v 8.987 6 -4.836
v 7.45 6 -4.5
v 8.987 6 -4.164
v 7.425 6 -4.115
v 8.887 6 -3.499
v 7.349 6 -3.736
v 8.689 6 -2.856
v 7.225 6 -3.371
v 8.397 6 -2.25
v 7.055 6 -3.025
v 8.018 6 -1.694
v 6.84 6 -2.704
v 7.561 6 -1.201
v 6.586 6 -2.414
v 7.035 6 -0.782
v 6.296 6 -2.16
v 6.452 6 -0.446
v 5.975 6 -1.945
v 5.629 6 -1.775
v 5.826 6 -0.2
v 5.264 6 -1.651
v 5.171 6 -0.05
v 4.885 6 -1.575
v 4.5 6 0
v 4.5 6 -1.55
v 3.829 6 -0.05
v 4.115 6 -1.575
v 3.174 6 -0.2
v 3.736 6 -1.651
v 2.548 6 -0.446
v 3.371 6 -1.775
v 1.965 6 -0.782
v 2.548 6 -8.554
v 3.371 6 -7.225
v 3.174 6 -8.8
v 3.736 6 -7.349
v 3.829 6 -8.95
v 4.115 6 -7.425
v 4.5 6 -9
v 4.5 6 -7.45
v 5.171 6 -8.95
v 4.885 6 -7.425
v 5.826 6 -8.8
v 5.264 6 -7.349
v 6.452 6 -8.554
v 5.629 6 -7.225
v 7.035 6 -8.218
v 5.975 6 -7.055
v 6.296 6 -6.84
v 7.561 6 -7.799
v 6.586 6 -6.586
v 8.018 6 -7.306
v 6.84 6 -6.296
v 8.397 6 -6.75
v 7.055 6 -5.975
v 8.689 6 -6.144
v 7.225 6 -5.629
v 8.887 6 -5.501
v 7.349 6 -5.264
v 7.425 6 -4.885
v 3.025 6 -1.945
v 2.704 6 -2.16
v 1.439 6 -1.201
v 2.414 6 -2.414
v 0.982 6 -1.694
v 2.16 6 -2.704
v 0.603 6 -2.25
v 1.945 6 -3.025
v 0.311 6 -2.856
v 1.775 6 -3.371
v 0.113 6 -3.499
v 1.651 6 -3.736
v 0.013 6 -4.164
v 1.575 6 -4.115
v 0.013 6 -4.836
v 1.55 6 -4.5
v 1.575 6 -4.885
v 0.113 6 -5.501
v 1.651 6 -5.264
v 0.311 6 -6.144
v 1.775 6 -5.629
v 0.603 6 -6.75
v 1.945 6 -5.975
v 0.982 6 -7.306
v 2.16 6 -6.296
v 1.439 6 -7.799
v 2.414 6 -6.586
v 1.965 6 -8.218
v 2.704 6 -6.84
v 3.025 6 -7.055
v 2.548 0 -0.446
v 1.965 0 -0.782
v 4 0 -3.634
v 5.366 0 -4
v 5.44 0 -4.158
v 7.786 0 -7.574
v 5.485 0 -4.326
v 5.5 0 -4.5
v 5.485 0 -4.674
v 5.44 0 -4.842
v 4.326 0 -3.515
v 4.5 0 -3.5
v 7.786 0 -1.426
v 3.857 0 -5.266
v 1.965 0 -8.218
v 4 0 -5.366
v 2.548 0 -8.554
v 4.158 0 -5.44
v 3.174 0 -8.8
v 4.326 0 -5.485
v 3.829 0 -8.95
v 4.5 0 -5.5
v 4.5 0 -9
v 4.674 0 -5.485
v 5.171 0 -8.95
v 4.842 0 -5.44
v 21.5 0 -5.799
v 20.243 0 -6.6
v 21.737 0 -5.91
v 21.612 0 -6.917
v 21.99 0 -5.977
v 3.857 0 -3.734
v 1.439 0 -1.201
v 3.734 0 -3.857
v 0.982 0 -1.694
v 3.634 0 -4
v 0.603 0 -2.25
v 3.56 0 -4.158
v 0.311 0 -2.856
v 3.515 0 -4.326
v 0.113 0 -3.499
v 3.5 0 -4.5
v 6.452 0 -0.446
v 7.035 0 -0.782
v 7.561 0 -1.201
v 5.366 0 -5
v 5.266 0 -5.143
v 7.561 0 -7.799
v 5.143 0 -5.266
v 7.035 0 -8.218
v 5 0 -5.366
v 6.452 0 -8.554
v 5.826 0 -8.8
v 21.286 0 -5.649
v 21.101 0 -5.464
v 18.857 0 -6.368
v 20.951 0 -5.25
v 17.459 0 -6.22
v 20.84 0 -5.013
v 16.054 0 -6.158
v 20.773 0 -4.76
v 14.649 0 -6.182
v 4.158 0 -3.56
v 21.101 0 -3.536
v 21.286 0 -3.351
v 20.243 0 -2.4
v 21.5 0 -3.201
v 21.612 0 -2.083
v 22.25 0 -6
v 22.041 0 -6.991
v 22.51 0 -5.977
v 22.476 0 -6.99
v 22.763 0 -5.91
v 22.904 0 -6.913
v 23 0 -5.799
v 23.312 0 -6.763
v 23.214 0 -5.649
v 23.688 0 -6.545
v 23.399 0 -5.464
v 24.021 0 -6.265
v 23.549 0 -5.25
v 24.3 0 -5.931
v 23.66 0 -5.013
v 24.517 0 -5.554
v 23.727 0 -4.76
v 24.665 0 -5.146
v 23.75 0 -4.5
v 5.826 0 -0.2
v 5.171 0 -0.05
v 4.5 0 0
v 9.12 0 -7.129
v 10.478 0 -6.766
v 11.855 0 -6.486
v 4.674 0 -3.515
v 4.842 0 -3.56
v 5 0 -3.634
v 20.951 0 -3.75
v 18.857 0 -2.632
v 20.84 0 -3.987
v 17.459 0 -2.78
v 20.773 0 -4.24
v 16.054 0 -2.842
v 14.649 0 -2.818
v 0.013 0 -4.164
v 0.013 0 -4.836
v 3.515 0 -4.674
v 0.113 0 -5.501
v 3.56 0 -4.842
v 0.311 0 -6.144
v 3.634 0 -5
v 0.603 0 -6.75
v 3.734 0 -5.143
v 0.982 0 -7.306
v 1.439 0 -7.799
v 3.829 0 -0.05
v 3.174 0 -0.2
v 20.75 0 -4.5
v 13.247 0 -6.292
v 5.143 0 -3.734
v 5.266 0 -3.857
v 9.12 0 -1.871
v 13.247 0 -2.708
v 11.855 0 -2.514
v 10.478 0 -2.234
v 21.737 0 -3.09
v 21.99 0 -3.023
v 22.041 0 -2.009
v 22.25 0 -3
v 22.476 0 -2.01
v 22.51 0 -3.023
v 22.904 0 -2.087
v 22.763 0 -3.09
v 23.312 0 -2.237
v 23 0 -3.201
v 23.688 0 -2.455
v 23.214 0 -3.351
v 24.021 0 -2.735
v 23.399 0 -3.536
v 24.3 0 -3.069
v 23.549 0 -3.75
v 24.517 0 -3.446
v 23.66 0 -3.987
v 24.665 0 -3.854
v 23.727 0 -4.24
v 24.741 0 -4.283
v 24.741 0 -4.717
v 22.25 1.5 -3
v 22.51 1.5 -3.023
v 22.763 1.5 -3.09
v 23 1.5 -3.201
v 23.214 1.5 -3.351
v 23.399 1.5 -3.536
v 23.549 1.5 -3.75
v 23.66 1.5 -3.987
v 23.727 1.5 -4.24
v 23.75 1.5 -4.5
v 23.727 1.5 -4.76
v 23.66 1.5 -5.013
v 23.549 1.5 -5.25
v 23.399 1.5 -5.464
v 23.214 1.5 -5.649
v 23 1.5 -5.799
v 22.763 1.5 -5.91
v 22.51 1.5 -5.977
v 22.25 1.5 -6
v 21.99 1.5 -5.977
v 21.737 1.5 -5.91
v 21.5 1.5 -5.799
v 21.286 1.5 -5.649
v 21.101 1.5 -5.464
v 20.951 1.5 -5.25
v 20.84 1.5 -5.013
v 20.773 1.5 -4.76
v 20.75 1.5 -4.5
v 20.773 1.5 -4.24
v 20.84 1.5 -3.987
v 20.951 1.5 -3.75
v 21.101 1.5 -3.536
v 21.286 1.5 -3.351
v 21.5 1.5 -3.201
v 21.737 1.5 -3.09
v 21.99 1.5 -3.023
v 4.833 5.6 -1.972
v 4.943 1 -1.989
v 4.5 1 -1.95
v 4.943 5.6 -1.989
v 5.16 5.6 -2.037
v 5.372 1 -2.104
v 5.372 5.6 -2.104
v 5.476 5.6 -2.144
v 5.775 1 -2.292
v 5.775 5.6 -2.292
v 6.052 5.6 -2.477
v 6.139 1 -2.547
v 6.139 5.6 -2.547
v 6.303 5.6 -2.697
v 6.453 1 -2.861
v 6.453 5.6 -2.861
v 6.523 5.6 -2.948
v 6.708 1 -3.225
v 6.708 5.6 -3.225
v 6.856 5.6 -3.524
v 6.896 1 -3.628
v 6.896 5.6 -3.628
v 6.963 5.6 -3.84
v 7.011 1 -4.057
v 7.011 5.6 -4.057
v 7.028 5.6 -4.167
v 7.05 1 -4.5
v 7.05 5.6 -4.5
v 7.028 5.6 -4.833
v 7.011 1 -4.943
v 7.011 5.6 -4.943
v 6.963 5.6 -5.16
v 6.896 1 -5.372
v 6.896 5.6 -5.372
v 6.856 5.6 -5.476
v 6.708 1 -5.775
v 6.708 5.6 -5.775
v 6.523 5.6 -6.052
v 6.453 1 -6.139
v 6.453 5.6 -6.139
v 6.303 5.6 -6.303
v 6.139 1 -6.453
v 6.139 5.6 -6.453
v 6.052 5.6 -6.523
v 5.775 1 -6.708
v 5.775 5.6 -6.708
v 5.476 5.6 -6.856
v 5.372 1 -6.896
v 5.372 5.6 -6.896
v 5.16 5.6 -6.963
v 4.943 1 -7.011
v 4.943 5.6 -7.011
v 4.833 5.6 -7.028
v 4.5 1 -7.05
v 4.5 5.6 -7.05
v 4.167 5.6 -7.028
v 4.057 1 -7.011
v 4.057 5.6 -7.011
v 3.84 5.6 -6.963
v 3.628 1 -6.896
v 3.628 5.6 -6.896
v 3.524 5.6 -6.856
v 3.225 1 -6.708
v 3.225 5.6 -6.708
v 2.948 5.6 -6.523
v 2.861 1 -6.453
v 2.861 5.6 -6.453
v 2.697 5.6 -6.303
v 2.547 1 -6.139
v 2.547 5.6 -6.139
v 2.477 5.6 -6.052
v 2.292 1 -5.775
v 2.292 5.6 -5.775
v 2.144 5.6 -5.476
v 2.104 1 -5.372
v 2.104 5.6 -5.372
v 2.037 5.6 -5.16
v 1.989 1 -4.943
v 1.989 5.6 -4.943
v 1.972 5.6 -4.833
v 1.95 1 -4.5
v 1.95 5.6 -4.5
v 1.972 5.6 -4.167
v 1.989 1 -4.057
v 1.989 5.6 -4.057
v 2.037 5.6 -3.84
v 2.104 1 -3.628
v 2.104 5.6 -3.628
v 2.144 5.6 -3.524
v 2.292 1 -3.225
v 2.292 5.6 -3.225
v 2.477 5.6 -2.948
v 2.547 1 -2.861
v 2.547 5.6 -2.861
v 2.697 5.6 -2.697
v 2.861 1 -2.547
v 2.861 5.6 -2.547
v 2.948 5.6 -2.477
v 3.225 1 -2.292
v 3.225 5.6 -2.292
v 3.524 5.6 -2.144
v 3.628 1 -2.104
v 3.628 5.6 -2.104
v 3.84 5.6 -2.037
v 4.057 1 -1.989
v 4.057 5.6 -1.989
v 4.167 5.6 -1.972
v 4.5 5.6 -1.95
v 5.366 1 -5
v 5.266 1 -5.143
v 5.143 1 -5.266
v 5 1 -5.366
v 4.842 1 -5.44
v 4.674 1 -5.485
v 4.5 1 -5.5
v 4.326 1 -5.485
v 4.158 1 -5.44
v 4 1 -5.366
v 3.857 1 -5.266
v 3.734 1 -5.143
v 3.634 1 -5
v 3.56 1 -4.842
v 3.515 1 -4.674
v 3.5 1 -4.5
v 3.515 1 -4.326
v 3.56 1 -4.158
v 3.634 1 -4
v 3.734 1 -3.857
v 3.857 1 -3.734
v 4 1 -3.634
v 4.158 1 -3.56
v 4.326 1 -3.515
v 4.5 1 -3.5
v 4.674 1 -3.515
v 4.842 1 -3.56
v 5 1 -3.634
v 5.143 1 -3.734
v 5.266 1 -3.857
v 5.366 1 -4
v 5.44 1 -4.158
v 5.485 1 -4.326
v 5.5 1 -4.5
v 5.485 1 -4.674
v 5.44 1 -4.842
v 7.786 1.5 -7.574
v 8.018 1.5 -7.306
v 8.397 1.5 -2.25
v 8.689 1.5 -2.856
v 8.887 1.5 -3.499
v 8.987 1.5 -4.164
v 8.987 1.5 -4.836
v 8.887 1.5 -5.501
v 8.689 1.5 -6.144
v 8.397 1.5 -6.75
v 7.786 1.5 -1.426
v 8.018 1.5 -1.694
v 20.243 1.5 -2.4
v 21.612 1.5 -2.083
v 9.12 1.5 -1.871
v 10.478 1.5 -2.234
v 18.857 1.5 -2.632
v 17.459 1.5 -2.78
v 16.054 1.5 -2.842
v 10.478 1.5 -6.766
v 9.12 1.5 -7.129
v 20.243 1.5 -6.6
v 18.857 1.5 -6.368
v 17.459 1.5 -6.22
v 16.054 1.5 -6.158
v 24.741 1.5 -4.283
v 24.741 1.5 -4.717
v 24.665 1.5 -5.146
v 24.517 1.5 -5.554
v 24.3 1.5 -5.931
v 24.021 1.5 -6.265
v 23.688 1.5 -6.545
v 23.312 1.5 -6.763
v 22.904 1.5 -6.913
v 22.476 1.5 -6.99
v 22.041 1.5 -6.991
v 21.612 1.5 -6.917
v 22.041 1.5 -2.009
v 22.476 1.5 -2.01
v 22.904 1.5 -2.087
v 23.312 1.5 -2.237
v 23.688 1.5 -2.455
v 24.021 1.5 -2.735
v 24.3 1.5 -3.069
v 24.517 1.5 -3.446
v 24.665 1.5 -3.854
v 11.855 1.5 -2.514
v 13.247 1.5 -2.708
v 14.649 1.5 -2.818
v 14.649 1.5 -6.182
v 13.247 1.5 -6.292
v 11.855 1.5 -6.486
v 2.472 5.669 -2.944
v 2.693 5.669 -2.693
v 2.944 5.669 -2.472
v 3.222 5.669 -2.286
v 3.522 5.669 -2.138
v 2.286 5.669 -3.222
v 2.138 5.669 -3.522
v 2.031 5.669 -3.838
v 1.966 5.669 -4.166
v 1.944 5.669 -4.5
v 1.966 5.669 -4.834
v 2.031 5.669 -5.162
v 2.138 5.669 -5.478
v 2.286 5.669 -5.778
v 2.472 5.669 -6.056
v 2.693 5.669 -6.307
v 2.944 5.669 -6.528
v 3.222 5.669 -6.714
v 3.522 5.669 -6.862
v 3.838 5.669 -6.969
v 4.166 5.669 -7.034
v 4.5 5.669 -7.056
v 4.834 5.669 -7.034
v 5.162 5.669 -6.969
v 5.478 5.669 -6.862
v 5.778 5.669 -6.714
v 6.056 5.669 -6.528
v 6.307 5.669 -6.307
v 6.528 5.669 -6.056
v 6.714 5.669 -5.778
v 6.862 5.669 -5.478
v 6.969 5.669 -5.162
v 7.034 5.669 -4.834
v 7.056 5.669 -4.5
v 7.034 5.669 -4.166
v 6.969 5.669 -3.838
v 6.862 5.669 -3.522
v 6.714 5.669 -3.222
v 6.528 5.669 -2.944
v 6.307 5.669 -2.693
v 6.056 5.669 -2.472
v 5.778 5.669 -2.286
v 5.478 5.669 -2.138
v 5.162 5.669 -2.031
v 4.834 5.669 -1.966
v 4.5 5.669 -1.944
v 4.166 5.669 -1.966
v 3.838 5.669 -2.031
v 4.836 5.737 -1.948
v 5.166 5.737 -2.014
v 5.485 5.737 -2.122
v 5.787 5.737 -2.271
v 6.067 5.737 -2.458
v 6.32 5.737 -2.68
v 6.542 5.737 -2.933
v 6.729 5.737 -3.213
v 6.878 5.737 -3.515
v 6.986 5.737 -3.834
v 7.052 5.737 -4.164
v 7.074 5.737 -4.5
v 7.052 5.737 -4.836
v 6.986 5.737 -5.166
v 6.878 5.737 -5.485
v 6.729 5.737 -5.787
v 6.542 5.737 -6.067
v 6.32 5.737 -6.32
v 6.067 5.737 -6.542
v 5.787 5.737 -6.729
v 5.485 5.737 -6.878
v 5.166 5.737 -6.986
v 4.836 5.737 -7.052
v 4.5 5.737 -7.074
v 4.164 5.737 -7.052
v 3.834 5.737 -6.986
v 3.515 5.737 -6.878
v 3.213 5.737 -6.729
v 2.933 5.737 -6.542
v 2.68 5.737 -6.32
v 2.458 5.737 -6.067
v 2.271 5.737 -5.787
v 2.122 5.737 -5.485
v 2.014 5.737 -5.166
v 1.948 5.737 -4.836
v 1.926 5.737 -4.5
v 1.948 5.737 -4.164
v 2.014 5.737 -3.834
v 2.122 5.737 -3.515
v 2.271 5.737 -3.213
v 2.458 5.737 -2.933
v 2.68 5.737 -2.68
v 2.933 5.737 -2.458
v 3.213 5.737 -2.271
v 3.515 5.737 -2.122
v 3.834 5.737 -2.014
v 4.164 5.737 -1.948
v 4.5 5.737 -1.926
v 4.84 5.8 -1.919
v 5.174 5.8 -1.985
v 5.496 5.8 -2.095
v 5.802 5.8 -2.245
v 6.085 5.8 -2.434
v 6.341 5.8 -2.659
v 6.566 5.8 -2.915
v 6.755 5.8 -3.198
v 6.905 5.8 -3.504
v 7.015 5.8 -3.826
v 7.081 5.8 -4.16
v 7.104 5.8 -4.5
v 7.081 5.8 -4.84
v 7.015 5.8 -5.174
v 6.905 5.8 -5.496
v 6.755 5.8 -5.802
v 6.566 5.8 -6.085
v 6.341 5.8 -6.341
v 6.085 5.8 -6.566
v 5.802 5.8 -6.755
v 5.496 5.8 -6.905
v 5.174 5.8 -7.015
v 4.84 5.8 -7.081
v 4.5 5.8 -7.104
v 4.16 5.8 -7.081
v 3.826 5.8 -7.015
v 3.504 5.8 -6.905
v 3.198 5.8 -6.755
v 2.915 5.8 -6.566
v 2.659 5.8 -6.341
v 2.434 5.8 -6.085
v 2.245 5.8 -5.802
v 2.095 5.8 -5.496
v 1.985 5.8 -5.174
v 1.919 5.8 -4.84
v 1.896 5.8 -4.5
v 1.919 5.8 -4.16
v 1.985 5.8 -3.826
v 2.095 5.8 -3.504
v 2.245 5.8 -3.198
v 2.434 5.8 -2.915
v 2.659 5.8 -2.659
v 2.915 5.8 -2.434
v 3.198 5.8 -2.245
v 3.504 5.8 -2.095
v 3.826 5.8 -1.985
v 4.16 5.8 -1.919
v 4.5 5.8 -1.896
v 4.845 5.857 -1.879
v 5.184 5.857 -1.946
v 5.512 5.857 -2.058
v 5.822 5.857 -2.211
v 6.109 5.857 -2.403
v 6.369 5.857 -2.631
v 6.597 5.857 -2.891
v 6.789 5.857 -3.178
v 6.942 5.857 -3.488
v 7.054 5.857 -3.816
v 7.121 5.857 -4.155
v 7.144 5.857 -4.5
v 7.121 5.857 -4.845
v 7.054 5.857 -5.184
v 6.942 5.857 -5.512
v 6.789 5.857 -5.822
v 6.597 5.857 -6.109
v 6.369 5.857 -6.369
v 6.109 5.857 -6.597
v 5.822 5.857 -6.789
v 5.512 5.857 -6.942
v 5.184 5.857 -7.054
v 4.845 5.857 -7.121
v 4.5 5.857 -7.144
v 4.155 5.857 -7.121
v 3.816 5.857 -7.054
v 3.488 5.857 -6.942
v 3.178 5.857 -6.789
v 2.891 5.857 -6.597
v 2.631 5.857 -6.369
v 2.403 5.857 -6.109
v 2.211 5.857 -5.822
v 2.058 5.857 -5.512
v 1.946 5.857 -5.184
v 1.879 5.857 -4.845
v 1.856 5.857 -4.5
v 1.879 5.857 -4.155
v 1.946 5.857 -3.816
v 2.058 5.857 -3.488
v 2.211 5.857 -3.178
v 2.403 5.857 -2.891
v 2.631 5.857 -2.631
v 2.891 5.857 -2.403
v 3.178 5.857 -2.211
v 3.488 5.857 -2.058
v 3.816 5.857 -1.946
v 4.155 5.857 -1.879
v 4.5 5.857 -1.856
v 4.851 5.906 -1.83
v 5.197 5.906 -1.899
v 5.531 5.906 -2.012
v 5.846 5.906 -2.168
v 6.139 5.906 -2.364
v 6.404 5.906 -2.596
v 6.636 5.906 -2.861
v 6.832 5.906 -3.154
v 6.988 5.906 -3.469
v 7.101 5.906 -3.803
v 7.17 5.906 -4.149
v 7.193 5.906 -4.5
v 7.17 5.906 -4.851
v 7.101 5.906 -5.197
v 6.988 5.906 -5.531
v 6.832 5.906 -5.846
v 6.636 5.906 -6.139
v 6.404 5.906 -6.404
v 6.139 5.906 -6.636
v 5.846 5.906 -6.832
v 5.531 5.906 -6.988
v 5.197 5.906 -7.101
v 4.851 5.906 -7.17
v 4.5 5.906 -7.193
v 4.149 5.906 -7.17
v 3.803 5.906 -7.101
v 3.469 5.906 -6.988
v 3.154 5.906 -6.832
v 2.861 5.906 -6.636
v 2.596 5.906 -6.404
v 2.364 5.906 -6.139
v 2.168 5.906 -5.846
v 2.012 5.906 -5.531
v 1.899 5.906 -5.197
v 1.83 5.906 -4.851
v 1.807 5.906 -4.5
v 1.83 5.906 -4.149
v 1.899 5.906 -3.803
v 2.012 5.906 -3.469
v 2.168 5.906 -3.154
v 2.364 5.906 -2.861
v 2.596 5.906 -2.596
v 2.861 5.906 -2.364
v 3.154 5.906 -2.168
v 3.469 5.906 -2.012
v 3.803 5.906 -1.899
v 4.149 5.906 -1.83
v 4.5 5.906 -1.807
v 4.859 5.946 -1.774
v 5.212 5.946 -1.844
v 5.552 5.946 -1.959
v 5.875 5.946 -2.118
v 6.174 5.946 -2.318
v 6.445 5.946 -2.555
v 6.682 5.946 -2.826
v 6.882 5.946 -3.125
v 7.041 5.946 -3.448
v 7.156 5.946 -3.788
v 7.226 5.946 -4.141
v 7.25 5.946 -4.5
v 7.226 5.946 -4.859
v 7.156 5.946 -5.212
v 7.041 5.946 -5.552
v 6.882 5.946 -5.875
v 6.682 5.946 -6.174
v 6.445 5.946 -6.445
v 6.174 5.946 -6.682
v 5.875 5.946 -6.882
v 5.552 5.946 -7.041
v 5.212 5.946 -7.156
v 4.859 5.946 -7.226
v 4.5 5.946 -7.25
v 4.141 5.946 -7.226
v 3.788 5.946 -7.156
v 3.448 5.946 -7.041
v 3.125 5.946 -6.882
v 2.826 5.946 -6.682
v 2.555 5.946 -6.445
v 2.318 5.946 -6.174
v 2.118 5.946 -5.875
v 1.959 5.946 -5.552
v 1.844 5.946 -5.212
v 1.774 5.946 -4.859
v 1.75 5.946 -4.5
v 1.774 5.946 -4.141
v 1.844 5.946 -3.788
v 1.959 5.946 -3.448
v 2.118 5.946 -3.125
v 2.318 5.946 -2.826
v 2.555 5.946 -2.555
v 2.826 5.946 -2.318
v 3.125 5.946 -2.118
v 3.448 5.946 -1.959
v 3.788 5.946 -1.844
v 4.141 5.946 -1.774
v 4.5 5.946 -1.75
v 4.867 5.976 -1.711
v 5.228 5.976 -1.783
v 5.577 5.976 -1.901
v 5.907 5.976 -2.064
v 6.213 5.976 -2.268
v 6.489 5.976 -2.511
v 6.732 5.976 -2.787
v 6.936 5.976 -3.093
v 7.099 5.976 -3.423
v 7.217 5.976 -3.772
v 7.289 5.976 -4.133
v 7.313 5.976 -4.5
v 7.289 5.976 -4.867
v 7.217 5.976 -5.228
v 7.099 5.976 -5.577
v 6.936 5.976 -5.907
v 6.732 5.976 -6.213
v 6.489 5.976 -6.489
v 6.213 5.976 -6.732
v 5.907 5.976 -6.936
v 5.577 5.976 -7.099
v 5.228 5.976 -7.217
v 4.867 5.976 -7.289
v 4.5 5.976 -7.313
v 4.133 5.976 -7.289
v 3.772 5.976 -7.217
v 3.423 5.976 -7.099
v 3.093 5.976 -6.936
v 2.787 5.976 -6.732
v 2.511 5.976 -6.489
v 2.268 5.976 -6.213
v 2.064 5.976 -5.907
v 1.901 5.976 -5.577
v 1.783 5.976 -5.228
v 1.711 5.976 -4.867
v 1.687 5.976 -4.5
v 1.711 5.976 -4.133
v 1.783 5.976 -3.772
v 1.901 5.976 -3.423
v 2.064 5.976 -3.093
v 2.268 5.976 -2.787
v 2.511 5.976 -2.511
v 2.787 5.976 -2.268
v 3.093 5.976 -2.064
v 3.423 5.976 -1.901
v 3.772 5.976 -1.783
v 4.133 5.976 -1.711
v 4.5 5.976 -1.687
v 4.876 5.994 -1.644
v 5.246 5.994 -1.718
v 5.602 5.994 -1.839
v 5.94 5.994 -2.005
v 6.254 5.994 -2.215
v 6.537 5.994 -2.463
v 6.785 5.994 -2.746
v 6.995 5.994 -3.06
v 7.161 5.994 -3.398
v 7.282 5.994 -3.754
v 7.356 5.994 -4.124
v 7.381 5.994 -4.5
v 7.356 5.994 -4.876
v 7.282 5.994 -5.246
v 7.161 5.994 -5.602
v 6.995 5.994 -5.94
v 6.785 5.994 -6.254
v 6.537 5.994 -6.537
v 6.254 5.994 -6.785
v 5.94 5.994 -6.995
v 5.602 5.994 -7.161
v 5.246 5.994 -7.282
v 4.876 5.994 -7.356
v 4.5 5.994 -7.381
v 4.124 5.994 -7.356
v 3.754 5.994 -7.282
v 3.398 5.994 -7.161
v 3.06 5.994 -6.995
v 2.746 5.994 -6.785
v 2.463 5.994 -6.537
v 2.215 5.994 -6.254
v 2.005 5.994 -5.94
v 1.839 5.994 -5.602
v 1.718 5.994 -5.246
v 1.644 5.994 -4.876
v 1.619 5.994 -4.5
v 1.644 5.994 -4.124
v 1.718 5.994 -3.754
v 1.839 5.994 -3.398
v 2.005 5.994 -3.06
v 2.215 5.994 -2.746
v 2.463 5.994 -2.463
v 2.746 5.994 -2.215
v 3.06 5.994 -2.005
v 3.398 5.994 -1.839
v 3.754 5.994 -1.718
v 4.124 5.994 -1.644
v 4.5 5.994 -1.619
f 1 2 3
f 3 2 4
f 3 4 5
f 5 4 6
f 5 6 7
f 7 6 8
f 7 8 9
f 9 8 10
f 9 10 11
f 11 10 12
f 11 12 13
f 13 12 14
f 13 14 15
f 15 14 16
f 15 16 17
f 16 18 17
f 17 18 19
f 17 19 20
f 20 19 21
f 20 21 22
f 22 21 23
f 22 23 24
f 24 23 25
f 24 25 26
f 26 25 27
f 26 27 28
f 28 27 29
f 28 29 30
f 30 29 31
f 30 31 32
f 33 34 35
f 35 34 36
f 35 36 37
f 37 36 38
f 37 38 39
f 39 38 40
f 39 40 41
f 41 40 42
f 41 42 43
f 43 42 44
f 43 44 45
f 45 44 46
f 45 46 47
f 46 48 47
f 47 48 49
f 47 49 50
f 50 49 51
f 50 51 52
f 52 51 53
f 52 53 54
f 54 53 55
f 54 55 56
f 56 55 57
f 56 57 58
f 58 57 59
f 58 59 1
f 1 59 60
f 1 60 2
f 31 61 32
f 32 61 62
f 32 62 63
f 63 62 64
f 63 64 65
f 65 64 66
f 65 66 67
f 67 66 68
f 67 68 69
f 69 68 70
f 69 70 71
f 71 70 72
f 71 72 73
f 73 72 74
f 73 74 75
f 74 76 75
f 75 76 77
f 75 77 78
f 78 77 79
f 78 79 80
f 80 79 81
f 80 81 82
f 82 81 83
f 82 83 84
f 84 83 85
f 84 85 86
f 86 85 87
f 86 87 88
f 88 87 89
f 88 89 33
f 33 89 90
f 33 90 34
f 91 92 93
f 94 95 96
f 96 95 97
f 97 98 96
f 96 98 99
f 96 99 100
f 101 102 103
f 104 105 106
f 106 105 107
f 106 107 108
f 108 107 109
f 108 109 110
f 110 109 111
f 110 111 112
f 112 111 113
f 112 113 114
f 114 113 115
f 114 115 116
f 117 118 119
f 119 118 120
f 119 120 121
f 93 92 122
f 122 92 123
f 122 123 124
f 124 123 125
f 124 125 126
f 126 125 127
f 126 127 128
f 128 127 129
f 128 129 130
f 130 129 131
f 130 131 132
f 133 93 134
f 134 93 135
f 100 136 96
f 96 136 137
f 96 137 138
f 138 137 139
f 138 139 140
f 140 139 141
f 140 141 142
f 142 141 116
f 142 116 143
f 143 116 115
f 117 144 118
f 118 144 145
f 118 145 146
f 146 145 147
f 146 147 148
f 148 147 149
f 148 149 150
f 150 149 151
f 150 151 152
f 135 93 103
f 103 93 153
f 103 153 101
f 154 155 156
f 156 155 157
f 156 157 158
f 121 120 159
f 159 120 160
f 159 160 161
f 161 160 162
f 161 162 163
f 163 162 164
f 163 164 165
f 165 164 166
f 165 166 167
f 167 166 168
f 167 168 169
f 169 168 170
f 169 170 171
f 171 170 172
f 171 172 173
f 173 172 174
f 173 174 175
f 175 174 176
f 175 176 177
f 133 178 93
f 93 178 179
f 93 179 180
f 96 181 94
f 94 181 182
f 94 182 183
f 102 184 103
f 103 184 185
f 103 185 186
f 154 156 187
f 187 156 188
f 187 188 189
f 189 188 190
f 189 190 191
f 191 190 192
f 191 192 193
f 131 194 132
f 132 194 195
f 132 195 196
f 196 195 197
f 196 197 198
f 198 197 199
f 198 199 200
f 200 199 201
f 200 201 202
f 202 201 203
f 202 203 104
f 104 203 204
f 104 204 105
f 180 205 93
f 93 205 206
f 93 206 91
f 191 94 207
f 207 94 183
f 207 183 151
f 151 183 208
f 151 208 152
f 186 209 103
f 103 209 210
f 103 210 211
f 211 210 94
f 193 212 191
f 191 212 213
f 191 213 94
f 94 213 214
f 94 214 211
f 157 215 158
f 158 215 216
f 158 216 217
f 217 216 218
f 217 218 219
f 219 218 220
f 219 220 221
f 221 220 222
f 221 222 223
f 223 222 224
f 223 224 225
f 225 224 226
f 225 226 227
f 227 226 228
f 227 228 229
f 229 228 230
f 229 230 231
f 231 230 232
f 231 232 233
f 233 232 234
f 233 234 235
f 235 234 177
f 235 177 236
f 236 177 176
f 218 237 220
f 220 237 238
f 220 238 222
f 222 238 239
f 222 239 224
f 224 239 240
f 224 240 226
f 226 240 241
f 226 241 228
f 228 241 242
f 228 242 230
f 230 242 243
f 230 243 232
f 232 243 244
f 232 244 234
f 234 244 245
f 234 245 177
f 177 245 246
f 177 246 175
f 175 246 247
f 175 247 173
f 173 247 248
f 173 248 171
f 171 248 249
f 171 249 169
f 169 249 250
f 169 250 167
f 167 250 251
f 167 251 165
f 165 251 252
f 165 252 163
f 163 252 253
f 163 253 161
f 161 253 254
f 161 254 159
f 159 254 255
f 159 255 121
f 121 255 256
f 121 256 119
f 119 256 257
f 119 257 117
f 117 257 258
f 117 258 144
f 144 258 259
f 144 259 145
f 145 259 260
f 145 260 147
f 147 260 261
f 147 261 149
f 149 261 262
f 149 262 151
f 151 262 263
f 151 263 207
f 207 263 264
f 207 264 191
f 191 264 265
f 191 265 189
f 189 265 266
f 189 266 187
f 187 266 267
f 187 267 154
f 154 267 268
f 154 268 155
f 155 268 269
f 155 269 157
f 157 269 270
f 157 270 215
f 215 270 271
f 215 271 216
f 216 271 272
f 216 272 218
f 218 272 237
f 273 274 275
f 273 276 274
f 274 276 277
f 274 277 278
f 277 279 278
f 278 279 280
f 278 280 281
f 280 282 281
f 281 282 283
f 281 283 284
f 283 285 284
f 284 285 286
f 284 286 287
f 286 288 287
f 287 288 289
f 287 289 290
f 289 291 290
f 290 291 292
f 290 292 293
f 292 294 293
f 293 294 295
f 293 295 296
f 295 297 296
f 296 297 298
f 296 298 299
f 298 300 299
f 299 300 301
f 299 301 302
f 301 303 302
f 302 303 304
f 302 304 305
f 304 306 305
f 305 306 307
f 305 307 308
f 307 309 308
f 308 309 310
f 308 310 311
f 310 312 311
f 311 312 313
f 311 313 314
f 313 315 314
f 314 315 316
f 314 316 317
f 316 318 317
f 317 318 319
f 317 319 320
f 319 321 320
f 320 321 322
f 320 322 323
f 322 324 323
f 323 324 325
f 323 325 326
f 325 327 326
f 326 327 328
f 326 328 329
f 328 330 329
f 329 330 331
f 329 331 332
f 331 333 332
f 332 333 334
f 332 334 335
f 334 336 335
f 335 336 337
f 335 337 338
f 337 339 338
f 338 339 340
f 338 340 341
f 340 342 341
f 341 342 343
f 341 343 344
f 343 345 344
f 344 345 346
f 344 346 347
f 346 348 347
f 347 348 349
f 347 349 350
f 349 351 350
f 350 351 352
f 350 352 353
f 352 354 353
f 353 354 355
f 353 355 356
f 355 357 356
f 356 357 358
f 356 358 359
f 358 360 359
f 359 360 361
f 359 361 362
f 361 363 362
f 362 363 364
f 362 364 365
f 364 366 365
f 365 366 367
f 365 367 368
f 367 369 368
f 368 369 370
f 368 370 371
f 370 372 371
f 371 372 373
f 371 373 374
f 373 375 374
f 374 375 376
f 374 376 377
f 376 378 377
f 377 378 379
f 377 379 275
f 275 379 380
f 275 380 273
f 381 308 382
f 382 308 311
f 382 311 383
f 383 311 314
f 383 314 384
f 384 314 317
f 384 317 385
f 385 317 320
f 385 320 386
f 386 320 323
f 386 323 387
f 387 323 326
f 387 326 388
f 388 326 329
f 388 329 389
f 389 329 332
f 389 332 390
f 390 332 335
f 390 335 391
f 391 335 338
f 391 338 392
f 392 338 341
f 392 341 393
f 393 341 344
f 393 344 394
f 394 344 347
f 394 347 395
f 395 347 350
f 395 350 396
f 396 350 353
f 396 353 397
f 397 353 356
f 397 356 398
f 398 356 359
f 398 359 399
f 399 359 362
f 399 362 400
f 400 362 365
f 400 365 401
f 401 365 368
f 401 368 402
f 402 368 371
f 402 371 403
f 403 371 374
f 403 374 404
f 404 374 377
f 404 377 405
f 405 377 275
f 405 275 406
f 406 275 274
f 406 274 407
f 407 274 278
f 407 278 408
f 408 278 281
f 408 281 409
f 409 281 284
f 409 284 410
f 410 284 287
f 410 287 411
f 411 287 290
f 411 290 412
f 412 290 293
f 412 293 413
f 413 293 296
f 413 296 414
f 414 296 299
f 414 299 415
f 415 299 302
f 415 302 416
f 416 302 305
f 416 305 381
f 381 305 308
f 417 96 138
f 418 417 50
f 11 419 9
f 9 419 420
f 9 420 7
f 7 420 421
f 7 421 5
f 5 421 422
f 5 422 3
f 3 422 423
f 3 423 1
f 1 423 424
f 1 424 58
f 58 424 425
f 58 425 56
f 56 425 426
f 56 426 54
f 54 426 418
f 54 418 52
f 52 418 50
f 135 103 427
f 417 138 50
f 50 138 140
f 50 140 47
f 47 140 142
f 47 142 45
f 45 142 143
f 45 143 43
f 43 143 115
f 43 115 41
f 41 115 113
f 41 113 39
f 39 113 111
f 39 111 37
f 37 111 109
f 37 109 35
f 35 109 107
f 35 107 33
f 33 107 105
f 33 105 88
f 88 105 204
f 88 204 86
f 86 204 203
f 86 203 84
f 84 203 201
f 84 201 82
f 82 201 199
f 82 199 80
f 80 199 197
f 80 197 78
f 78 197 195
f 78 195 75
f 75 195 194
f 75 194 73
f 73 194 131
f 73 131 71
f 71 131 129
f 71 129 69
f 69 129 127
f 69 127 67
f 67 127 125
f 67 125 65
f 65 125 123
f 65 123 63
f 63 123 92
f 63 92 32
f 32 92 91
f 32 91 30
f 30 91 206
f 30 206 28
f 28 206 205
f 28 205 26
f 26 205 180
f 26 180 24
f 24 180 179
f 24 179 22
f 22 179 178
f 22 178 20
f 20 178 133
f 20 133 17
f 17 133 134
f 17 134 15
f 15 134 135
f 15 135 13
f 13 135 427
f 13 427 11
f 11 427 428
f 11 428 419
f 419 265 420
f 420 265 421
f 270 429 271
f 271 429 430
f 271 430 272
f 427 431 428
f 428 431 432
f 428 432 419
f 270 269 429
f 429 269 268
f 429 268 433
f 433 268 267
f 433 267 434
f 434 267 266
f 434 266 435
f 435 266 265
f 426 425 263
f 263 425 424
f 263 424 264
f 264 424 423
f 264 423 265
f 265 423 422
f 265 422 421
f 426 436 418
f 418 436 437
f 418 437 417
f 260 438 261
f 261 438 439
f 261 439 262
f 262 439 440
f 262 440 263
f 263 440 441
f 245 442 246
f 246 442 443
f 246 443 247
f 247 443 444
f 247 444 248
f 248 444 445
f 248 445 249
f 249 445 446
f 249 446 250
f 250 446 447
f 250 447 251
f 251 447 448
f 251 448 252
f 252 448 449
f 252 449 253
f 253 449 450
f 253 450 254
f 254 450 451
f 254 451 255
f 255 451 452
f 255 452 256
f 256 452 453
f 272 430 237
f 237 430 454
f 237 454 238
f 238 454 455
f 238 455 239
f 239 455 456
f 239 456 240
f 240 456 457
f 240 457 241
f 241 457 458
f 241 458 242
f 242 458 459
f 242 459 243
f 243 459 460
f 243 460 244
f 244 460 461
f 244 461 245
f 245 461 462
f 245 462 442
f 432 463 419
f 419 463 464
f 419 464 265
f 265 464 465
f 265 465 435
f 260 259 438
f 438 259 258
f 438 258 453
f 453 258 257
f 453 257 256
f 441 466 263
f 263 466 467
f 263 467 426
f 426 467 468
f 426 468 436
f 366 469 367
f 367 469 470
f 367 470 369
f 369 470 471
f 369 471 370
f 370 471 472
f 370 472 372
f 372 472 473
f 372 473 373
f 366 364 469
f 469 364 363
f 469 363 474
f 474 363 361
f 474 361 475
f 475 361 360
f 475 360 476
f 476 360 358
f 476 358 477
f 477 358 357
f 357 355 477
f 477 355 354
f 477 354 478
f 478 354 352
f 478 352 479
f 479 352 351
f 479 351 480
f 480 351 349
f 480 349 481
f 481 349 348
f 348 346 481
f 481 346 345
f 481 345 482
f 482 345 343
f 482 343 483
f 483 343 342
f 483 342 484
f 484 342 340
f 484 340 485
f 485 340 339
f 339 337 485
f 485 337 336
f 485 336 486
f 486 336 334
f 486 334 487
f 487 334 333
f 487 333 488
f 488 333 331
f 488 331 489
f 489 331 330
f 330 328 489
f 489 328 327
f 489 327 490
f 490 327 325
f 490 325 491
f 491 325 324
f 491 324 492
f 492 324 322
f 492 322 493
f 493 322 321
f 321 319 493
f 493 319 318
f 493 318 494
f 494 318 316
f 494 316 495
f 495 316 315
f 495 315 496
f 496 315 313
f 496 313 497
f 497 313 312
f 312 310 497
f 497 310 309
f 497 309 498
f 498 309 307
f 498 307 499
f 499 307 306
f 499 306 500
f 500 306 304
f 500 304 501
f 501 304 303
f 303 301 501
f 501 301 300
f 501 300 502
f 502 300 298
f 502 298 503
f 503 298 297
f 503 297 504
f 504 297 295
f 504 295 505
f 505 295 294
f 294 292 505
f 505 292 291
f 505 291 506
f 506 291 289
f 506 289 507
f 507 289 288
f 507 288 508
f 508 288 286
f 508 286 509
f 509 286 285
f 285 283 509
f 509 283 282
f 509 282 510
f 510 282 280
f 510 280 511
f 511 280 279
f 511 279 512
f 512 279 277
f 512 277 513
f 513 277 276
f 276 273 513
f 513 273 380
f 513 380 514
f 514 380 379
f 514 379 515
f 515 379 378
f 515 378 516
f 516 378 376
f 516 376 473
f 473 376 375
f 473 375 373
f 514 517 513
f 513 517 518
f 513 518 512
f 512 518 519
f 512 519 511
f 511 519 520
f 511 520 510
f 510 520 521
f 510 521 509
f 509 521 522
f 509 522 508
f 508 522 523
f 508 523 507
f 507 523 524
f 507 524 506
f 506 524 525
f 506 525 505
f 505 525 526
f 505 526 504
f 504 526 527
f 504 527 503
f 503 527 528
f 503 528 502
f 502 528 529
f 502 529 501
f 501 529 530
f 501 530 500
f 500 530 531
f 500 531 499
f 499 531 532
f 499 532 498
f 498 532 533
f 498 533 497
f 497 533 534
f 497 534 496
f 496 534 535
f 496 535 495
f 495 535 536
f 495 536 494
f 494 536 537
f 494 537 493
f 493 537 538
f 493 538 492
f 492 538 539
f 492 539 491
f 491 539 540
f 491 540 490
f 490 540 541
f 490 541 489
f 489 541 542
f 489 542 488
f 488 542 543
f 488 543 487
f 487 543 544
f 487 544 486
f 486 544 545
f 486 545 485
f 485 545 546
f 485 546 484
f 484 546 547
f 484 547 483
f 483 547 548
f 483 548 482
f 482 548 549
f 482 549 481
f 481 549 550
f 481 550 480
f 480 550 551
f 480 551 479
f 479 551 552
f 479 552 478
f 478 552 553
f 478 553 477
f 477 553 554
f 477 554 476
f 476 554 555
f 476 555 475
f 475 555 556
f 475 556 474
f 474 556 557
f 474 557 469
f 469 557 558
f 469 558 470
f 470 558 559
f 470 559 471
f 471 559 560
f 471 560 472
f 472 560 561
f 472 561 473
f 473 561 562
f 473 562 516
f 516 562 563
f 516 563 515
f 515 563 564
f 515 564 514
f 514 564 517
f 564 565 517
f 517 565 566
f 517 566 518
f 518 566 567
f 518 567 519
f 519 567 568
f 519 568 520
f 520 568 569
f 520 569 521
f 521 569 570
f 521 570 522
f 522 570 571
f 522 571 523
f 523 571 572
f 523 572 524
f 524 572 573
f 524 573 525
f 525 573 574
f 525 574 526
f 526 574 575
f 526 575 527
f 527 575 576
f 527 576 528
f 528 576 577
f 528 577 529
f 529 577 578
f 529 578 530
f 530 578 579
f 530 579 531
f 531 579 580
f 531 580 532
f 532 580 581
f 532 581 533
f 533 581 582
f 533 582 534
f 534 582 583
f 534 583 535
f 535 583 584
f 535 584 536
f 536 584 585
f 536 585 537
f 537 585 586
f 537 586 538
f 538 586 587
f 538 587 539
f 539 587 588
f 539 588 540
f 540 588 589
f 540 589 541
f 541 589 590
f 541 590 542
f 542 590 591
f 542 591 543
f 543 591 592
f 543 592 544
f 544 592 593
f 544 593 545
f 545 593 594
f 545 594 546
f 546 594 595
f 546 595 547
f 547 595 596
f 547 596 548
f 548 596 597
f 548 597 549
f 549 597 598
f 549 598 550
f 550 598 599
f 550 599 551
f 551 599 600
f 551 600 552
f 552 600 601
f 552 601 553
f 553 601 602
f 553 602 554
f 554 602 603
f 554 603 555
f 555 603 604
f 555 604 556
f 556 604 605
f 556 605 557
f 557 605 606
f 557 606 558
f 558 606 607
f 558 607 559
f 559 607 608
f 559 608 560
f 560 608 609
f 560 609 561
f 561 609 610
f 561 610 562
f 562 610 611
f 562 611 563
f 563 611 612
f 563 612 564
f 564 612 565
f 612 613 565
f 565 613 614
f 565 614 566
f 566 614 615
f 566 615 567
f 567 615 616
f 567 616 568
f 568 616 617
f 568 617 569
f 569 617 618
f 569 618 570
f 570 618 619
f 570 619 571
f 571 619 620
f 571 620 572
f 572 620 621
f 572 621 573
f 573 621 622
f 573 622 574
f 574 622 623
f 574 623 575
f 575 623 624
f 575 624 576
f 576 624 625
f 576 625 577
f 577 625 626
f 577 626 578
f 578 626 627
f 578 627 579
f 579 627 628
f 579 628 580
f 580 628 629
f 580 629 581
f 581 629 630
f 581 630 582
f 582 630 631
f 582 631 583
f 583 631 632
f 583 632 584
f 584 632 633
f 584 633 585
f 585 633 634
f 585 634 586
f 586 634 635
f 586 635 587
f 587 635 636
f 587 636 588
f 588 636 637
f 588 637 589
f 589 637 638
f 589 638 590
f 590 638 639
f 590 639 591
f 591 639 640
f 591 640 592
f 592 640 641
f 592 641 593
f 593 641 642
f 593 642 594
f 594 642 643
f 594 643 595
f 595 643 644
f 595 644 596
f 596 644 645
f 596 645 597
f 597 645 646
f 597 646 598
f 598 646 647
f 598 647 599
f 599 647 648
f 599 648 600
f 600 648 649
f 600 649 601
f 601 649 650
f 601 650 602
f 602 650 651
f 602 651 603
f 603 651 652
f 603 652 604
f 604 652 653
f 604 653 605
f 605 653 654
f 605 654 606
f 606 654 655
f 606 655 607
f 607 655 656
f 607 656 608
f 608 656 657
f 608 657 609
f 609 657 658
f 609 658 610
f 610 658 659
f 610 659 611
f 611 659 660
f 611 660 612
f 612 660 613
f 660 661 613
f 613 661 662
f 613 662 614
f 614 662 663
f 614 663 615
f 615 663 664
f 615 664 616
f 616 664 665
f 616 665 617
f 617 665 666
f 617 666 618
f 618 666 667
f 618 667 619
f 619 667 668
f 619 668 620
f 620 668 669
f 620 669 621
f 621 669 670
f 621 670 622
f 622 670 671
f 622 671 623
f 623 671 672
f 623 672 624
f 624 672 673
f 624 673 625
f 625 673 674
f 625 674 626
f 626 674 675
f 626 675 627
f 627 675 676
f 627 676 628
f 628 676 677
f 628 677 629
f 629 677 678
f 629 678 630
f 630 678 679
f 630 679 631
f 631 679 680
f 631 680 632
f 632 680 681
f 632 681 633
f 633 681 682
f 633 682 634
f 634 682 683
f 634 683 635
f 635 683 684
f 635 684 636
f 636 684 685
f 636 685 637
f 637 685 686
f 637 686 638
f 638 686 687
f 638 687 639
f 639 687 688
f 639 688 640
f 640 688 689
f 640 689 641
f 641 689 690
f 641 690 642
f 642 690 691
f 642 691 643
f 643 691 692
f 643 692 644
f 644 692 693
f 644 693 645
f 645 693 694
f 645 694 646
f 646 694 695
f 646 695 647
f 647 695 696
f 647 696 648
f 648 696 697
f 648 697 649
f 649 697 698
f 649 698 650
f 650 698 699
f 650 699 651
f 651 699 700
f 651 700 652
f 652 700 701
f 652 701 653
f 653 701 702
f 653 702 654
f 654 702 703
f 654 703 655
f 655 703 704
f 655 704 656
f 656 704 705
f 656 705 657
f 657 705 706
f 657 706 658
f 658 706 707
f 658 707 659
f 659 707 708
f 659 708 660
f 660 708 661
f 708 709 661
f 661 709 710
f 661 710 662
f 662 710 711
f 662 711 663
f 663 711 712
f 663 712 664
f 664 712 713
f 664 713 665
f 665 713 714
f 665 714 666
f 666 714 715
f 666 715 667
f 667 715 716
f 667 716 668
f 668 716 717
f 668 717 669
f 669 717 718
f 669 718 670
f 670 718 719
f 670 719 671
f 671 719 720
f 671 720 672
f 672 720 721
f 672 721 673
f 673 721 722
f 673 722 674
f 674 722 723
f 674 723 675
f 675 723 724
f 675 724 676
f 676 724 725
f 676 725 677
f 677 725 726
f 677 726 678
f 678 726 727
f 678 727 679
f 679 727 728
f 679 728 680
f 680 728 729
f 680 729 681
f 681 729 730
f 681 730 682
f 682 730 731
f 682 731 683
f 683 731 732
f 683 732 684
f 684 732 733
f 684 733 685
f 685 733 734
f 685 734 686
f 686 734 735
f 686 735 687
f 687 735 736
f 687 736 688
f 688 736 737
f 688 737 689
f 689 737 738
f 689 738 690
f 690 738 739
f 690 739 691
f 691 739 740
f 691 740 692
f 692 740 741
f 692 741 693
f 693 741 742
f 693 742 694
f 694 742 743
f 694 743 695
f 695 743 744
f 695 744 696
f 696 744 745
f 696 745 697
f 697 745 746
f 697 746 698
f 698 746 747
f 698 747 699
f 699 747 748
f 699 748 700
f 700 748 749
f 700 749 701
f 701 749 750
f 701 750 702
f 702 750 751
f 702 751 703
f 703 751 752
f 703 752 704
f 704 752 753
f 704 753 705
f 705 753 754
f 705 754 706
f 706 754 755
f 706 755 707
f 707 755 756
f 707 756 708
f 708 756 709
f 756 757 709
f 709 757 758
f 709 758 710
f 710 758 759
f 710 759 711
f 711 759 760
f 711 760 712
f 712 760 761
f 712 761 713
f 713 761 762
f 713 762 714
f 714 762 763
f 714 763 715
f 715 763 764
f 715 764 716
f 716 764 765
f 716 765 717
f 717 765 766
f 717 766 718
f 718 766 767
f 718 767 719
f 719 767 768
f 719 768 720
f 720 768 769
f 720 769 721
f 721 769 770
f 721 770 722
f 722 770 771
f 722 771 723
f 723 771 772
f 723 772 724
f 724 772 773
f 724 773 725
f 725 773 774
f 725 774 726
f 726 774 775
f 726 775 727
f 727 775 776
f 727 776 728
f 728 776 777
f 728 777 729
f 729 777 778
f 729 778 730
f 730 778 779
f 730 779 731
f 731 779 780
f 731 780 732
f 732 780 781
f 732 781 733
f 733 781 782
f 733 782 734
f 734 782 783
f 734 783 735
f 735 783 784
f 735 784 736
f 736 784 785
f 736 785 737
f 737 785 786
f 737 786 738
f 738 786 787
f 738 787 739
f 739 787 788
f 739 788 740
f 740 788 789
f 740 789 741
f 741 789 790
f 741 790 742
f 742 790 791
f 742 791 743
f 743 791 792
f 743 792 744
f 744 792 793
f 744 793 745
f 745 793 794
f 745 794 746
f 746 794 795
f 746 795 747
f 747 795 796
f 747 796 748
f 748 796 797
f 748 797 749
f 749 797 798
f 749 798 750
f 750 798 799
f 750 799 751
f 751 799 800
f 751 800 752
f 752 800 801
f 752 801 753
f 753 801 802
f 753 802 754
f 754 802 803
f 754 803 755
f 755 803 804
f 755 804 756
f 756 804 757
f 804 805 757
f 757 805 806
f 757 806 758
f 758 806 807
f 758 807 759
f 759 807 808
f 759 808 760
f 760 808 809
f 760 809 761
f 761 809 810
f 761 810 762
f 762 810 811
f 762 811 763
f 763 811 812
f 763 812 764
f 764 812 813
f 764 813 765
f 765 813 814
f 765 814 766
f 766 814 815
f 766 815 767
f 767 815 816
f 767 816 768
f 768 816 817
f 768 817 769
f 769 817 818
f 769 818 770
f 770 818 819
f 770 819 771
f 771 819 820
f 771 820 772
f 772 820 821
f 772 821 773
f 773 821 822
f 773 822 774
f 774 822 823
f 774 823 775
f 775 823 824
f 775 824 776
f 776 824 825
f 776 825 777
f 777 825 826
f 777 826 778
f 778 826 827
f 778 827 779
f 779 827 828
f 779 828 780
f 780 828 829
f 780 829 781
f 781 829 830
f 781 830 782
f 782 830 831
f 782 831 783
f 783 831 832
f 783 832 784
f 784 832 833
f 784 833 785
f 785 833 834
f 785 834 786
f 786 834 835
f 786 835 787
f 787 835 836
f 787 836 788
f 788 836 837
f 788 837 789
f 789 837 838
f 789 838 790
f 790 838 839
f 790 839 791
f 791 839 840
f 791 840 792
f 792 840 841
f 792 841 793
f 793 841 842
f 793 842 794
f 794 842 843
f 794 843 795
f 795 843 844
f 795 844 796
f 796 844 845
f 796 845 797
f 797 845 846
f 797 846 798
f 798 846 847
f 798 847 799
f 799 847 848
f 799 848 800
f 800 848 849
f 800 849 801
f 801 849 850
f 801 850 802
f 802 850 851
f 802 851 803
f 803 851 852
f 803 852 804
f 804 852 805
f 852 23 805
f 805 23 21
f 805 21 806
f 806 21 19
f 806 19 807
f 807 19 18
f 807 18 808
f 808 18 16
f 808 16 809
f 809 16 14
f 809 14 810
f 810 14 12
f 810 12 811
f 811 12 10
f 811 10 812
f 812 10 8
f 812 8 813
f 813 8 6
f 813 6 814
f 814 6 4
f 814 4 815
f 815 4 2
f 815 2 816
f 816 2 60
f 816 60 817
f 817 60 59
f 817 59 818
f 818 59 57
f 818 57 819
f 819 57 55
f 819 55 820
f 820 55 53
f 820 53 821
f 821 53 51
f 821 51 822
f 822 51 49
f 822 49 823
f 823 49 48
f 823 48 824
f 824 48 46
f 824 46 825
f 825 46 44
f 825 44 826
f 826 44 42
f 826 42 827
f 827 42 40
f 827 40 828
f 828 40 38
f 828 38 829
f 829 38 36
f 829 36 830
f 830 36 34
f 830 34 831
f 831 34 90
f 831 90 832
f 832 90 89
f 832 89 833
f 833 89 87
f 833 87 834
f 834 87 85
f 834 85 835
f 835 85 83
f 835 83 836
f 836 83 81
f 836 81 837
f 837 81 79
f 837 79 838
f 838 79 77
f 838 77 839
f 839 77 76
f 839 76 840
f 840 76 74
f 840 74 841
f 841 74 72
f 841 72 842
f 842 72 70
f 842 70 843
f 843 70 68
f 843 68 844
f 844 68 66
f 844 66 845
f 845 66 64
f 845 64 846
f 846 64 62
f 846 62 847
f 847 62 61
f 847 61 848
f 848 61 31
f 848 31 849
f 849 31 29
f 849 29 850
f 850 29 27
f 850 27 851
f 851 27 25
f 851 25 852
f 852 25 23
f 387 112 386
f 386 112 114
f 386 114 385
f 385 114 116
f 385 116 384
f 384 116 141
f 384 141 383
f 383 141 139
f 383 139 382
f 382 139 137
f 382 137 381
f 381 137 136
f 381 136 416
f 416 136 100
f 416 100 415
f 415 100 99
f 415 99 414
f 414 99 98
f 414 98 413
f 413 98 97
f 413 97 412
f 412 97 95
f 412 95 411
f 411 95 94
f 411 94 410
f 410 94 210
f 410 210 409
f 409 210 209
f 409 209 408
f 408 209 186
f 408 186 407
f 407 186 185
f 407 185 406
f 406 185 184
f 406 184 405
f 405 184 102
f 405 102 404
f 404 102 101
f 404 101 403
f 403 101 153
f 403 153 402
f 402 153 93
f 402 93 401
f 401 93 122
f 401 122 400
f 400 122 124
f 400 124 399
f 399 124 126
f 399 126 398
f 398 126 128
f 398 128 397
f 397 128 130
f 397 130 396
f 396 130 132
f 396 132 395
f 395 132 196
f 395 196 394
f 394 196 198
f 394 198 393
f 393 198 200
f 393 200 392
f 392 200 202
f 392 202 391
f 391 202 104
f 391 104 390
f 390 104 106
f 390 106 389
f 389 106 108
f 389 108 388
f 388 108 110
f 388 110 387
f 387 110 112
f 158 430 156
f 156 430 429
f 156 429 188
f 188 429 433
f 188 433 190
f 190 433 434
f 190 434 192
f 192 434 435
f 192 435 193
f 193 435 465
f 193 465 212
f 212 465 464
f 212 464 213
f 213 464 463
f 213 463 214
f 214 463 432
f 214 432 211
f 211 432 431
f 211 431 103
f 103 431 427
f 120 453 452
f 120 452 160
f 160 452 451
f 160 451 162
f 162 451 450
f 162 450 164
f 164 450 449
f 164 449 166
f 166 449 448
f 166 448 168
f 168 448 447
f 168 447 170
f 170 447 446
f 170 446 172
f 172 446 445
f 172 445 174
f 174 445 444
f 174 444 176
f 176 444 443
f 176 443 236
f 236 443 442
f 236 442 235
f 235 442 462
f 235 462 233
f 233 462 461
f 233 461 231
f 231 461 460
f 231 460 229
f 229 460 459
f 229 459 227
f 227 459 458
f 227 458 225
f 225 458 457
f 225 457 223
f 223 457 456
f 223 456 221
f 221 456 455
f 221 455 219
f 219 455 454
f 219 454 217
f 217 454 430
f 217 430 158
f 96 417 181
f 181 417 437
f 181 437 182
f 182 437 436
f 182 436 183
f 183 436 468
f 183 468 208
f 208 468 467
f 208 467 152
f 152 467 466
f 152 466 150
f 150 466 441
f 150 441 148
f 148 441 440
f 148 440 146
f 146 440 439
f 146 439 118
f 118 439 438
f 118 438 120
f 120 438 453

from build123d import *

# Parameters (mm, degrees)
SKETCH2_W               = 25
SKETCH2_H               = 9
BOSS_EXTRUDE3_DEPTH     = 6
SKETCH3_R               = 2.55
CUT_EXTRUDE1_DEPTH      = 5
CUT_EXTRUDE2_DEPTH      = 28.239676944
CUT_EXTRUDE2_DEPTH_BACK = 28.239676944
SKETCH4_R               = 1.5
SKETCH5_R               = 1.5
CUT_EXTRUDE3_DEPTH      = 4.5
CUT_EXTRUDE4_DEPTH      = 28.239676944
FILLET2_R               = 0.4
SKETCH8_R               = 1
CUT_EXTRUDE5_DEPTH      = 28.239676944
CUT_EXTRUDE7_DEPTH      = 10


with BuildPart() as part:
    # Sketch2 → Boss-Extrude3 (new body)
    with BuildSketch(Plane(origin=(0, 0, 0), x_dir=(1, 0, 0), z_dir=(0, 1, 0))):
        with Locations((12.5, 4.5)):
            Rectangle(SKETCH2_W, SKETCH2_H)
    extrude(amount=BOSS_EXTRUDE3_DEPTH)

    # Sketch3 → Cut-Extrude1 (cut)
    with BuildSketch(Plane(origin=(0, 6, 0), x_dir=(1, 0, 0), z_dir=(0, 1, 0))):
        with Locations(Location((4.5, 4.5, 0), (0, 0, 270))):
            Circle(SKETCH3_R)
    extrude(amount=-CUT_EXTRUDE1_DEPTH, mode=Mode.SUBTRACT)

    # Sketch4 → Cut-Extrude2 (cut, two sides: drawn at the far end of the back side and taken through both)
    with BuildSketch(Plane(origin=(0, 6, 0), x_dir=(1, 0, 0), z_dir=(0, 1, 0)).offset(-CUT_EXTRUDE2_DEPTH_BACK)):
        with Locations(Location((22.25, 4.5, 0), (0, 0, 270))):
            Circle(SKETCH4_R)
    extrude(amount=CUT_EXTRUDE2_DEPTH + CUT_EXTRUDE2_DEPTH_BACK, mode=Mode.SUBTRACT)

    # Sketch5 → Cut-Extrude3 (cut)
    with BuildSketch(Plane(origin=(0, 6, 0), x_dir=(1, 0, 0), z_dir=(0, 1, 0))):
        with BuildLine():
            Line((25, 9), (4.5, 9))
            ThreePointArc((4.5, 9), (7.681980515, 7.681980515), (9, 4.5))
            ThreePointArc((9, 4.5), (7.681980515, 1.318019485), (4.5, 0))
            Line((4.5, 0), (25, 0))
            Line((25, 0), (25, 9))
        make_face()
        with Locations(Location((22.25, 4.5, 0), (0, 0, 270))):
            Circle(SKETCH5_R, mode=Mode.SUBTRACT)
    extrude(amount=-CUT_EXTRUDE3_DEPTH, mode=Mode.SUBTRACT)

    # Sketch6 → Cut-Extrude4 (cut, through all)
    with BuildSketch(Plane(origin=(0, 6, 0), x_dir=(1, 0, 0), z_dir=(0, 1, 0))):
        with BuildLine():
            ThreePointArc((0, 4.5), (1.318019485, 7.681980515), (4.5, 9))
            Line((4.5, 9), (0, 9))
            Line((0, 9), (0, 4.5))
        make_face()
        with BuildLine():
            ThreePointArc((4.5, 0), (1.318019485, 1.318019485), (0, 4.5))
            Line((0, 4.5), (0, 0))
            Line((0, 0), (4.5, 0))
        make_face()
    extrude(amount=-CUT_EXTRUDE4_DEPTH, mode=Mode.SUBTRACT)

    # Fillet2
    fillet2_edges = [part.edges().sort_by_distance(p)[0] for p in [
        (4.5, 6, -7.05),
    ]]
    fillet(fillet2_edges, radius=FILLET2_R)

    # Sketch8 → Cut-Extrude5 (cut, through all)
    with BuildSketch(Plane.XZ):
        with Locations(Location((4.5, -4.5, 0), (0, 0, 270))):
            Circle(SKETCH8_R)
    extrude(amount=-CUT_EXTRUDE5_DEPTH, mode=Mode.SUBTRACT)

    # Sketch9 → Cut-Extrude7 (cut)
    with BuildSketch(Plane(origin=(0, 1.5, 0), x_dir=(1, 0, 0), z_dir=(0, 1, 0))):
        with BuildLine():
            Line((25, 9), (4.5, 9))
            ThreePointArc((4.5, 9), (6.291176984, 8.628157581), (7.786338153, 7.574082228))
            ThreePointArc((7.786338153, 7.574082228), (14.648850695, 6.181991531), (21.61241808, 6.917331027))
            ThreePointArc((21.61241808, 6.917331027), (24.75, 4.499999954), (21.612417992, 2.082668996))
            ThreePointArc((21.612417992, 2.082668996), (14.64885065, 2.818008467), (7.786338153, 1.425917772))
            ThreePointArc((7.786338153, 1.425917772), (6.291176984, 0.371842419), (4.5, 0))
            Line((4.5, 0), (25, 0))
            Line((25, 0), (25, 9))
        make_face()
    extrude(amount=-CUT_EXTRUDE7_DEPTH, mode=Mode.SUBTRACT)


solid = part.part
